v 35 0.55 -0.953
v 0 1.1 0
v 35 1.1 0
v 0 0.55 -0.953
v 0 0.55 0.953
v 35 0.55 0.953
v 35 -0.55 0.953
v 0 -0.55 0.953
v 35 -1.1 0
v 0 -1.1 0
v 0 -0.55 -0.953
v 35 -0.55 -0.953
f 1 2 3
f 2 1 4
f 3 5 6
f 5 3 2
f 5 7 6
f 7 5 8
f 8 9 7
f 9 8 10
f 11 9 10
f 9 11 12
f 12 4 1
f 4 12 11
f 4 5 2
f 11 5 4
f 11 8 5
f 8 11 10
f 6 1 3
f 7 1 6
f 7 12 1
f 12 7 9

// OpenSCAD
rotate([30,0,0]) rotate([0,90,0]) cylinder($fn=6, d=2.2, h=35);
